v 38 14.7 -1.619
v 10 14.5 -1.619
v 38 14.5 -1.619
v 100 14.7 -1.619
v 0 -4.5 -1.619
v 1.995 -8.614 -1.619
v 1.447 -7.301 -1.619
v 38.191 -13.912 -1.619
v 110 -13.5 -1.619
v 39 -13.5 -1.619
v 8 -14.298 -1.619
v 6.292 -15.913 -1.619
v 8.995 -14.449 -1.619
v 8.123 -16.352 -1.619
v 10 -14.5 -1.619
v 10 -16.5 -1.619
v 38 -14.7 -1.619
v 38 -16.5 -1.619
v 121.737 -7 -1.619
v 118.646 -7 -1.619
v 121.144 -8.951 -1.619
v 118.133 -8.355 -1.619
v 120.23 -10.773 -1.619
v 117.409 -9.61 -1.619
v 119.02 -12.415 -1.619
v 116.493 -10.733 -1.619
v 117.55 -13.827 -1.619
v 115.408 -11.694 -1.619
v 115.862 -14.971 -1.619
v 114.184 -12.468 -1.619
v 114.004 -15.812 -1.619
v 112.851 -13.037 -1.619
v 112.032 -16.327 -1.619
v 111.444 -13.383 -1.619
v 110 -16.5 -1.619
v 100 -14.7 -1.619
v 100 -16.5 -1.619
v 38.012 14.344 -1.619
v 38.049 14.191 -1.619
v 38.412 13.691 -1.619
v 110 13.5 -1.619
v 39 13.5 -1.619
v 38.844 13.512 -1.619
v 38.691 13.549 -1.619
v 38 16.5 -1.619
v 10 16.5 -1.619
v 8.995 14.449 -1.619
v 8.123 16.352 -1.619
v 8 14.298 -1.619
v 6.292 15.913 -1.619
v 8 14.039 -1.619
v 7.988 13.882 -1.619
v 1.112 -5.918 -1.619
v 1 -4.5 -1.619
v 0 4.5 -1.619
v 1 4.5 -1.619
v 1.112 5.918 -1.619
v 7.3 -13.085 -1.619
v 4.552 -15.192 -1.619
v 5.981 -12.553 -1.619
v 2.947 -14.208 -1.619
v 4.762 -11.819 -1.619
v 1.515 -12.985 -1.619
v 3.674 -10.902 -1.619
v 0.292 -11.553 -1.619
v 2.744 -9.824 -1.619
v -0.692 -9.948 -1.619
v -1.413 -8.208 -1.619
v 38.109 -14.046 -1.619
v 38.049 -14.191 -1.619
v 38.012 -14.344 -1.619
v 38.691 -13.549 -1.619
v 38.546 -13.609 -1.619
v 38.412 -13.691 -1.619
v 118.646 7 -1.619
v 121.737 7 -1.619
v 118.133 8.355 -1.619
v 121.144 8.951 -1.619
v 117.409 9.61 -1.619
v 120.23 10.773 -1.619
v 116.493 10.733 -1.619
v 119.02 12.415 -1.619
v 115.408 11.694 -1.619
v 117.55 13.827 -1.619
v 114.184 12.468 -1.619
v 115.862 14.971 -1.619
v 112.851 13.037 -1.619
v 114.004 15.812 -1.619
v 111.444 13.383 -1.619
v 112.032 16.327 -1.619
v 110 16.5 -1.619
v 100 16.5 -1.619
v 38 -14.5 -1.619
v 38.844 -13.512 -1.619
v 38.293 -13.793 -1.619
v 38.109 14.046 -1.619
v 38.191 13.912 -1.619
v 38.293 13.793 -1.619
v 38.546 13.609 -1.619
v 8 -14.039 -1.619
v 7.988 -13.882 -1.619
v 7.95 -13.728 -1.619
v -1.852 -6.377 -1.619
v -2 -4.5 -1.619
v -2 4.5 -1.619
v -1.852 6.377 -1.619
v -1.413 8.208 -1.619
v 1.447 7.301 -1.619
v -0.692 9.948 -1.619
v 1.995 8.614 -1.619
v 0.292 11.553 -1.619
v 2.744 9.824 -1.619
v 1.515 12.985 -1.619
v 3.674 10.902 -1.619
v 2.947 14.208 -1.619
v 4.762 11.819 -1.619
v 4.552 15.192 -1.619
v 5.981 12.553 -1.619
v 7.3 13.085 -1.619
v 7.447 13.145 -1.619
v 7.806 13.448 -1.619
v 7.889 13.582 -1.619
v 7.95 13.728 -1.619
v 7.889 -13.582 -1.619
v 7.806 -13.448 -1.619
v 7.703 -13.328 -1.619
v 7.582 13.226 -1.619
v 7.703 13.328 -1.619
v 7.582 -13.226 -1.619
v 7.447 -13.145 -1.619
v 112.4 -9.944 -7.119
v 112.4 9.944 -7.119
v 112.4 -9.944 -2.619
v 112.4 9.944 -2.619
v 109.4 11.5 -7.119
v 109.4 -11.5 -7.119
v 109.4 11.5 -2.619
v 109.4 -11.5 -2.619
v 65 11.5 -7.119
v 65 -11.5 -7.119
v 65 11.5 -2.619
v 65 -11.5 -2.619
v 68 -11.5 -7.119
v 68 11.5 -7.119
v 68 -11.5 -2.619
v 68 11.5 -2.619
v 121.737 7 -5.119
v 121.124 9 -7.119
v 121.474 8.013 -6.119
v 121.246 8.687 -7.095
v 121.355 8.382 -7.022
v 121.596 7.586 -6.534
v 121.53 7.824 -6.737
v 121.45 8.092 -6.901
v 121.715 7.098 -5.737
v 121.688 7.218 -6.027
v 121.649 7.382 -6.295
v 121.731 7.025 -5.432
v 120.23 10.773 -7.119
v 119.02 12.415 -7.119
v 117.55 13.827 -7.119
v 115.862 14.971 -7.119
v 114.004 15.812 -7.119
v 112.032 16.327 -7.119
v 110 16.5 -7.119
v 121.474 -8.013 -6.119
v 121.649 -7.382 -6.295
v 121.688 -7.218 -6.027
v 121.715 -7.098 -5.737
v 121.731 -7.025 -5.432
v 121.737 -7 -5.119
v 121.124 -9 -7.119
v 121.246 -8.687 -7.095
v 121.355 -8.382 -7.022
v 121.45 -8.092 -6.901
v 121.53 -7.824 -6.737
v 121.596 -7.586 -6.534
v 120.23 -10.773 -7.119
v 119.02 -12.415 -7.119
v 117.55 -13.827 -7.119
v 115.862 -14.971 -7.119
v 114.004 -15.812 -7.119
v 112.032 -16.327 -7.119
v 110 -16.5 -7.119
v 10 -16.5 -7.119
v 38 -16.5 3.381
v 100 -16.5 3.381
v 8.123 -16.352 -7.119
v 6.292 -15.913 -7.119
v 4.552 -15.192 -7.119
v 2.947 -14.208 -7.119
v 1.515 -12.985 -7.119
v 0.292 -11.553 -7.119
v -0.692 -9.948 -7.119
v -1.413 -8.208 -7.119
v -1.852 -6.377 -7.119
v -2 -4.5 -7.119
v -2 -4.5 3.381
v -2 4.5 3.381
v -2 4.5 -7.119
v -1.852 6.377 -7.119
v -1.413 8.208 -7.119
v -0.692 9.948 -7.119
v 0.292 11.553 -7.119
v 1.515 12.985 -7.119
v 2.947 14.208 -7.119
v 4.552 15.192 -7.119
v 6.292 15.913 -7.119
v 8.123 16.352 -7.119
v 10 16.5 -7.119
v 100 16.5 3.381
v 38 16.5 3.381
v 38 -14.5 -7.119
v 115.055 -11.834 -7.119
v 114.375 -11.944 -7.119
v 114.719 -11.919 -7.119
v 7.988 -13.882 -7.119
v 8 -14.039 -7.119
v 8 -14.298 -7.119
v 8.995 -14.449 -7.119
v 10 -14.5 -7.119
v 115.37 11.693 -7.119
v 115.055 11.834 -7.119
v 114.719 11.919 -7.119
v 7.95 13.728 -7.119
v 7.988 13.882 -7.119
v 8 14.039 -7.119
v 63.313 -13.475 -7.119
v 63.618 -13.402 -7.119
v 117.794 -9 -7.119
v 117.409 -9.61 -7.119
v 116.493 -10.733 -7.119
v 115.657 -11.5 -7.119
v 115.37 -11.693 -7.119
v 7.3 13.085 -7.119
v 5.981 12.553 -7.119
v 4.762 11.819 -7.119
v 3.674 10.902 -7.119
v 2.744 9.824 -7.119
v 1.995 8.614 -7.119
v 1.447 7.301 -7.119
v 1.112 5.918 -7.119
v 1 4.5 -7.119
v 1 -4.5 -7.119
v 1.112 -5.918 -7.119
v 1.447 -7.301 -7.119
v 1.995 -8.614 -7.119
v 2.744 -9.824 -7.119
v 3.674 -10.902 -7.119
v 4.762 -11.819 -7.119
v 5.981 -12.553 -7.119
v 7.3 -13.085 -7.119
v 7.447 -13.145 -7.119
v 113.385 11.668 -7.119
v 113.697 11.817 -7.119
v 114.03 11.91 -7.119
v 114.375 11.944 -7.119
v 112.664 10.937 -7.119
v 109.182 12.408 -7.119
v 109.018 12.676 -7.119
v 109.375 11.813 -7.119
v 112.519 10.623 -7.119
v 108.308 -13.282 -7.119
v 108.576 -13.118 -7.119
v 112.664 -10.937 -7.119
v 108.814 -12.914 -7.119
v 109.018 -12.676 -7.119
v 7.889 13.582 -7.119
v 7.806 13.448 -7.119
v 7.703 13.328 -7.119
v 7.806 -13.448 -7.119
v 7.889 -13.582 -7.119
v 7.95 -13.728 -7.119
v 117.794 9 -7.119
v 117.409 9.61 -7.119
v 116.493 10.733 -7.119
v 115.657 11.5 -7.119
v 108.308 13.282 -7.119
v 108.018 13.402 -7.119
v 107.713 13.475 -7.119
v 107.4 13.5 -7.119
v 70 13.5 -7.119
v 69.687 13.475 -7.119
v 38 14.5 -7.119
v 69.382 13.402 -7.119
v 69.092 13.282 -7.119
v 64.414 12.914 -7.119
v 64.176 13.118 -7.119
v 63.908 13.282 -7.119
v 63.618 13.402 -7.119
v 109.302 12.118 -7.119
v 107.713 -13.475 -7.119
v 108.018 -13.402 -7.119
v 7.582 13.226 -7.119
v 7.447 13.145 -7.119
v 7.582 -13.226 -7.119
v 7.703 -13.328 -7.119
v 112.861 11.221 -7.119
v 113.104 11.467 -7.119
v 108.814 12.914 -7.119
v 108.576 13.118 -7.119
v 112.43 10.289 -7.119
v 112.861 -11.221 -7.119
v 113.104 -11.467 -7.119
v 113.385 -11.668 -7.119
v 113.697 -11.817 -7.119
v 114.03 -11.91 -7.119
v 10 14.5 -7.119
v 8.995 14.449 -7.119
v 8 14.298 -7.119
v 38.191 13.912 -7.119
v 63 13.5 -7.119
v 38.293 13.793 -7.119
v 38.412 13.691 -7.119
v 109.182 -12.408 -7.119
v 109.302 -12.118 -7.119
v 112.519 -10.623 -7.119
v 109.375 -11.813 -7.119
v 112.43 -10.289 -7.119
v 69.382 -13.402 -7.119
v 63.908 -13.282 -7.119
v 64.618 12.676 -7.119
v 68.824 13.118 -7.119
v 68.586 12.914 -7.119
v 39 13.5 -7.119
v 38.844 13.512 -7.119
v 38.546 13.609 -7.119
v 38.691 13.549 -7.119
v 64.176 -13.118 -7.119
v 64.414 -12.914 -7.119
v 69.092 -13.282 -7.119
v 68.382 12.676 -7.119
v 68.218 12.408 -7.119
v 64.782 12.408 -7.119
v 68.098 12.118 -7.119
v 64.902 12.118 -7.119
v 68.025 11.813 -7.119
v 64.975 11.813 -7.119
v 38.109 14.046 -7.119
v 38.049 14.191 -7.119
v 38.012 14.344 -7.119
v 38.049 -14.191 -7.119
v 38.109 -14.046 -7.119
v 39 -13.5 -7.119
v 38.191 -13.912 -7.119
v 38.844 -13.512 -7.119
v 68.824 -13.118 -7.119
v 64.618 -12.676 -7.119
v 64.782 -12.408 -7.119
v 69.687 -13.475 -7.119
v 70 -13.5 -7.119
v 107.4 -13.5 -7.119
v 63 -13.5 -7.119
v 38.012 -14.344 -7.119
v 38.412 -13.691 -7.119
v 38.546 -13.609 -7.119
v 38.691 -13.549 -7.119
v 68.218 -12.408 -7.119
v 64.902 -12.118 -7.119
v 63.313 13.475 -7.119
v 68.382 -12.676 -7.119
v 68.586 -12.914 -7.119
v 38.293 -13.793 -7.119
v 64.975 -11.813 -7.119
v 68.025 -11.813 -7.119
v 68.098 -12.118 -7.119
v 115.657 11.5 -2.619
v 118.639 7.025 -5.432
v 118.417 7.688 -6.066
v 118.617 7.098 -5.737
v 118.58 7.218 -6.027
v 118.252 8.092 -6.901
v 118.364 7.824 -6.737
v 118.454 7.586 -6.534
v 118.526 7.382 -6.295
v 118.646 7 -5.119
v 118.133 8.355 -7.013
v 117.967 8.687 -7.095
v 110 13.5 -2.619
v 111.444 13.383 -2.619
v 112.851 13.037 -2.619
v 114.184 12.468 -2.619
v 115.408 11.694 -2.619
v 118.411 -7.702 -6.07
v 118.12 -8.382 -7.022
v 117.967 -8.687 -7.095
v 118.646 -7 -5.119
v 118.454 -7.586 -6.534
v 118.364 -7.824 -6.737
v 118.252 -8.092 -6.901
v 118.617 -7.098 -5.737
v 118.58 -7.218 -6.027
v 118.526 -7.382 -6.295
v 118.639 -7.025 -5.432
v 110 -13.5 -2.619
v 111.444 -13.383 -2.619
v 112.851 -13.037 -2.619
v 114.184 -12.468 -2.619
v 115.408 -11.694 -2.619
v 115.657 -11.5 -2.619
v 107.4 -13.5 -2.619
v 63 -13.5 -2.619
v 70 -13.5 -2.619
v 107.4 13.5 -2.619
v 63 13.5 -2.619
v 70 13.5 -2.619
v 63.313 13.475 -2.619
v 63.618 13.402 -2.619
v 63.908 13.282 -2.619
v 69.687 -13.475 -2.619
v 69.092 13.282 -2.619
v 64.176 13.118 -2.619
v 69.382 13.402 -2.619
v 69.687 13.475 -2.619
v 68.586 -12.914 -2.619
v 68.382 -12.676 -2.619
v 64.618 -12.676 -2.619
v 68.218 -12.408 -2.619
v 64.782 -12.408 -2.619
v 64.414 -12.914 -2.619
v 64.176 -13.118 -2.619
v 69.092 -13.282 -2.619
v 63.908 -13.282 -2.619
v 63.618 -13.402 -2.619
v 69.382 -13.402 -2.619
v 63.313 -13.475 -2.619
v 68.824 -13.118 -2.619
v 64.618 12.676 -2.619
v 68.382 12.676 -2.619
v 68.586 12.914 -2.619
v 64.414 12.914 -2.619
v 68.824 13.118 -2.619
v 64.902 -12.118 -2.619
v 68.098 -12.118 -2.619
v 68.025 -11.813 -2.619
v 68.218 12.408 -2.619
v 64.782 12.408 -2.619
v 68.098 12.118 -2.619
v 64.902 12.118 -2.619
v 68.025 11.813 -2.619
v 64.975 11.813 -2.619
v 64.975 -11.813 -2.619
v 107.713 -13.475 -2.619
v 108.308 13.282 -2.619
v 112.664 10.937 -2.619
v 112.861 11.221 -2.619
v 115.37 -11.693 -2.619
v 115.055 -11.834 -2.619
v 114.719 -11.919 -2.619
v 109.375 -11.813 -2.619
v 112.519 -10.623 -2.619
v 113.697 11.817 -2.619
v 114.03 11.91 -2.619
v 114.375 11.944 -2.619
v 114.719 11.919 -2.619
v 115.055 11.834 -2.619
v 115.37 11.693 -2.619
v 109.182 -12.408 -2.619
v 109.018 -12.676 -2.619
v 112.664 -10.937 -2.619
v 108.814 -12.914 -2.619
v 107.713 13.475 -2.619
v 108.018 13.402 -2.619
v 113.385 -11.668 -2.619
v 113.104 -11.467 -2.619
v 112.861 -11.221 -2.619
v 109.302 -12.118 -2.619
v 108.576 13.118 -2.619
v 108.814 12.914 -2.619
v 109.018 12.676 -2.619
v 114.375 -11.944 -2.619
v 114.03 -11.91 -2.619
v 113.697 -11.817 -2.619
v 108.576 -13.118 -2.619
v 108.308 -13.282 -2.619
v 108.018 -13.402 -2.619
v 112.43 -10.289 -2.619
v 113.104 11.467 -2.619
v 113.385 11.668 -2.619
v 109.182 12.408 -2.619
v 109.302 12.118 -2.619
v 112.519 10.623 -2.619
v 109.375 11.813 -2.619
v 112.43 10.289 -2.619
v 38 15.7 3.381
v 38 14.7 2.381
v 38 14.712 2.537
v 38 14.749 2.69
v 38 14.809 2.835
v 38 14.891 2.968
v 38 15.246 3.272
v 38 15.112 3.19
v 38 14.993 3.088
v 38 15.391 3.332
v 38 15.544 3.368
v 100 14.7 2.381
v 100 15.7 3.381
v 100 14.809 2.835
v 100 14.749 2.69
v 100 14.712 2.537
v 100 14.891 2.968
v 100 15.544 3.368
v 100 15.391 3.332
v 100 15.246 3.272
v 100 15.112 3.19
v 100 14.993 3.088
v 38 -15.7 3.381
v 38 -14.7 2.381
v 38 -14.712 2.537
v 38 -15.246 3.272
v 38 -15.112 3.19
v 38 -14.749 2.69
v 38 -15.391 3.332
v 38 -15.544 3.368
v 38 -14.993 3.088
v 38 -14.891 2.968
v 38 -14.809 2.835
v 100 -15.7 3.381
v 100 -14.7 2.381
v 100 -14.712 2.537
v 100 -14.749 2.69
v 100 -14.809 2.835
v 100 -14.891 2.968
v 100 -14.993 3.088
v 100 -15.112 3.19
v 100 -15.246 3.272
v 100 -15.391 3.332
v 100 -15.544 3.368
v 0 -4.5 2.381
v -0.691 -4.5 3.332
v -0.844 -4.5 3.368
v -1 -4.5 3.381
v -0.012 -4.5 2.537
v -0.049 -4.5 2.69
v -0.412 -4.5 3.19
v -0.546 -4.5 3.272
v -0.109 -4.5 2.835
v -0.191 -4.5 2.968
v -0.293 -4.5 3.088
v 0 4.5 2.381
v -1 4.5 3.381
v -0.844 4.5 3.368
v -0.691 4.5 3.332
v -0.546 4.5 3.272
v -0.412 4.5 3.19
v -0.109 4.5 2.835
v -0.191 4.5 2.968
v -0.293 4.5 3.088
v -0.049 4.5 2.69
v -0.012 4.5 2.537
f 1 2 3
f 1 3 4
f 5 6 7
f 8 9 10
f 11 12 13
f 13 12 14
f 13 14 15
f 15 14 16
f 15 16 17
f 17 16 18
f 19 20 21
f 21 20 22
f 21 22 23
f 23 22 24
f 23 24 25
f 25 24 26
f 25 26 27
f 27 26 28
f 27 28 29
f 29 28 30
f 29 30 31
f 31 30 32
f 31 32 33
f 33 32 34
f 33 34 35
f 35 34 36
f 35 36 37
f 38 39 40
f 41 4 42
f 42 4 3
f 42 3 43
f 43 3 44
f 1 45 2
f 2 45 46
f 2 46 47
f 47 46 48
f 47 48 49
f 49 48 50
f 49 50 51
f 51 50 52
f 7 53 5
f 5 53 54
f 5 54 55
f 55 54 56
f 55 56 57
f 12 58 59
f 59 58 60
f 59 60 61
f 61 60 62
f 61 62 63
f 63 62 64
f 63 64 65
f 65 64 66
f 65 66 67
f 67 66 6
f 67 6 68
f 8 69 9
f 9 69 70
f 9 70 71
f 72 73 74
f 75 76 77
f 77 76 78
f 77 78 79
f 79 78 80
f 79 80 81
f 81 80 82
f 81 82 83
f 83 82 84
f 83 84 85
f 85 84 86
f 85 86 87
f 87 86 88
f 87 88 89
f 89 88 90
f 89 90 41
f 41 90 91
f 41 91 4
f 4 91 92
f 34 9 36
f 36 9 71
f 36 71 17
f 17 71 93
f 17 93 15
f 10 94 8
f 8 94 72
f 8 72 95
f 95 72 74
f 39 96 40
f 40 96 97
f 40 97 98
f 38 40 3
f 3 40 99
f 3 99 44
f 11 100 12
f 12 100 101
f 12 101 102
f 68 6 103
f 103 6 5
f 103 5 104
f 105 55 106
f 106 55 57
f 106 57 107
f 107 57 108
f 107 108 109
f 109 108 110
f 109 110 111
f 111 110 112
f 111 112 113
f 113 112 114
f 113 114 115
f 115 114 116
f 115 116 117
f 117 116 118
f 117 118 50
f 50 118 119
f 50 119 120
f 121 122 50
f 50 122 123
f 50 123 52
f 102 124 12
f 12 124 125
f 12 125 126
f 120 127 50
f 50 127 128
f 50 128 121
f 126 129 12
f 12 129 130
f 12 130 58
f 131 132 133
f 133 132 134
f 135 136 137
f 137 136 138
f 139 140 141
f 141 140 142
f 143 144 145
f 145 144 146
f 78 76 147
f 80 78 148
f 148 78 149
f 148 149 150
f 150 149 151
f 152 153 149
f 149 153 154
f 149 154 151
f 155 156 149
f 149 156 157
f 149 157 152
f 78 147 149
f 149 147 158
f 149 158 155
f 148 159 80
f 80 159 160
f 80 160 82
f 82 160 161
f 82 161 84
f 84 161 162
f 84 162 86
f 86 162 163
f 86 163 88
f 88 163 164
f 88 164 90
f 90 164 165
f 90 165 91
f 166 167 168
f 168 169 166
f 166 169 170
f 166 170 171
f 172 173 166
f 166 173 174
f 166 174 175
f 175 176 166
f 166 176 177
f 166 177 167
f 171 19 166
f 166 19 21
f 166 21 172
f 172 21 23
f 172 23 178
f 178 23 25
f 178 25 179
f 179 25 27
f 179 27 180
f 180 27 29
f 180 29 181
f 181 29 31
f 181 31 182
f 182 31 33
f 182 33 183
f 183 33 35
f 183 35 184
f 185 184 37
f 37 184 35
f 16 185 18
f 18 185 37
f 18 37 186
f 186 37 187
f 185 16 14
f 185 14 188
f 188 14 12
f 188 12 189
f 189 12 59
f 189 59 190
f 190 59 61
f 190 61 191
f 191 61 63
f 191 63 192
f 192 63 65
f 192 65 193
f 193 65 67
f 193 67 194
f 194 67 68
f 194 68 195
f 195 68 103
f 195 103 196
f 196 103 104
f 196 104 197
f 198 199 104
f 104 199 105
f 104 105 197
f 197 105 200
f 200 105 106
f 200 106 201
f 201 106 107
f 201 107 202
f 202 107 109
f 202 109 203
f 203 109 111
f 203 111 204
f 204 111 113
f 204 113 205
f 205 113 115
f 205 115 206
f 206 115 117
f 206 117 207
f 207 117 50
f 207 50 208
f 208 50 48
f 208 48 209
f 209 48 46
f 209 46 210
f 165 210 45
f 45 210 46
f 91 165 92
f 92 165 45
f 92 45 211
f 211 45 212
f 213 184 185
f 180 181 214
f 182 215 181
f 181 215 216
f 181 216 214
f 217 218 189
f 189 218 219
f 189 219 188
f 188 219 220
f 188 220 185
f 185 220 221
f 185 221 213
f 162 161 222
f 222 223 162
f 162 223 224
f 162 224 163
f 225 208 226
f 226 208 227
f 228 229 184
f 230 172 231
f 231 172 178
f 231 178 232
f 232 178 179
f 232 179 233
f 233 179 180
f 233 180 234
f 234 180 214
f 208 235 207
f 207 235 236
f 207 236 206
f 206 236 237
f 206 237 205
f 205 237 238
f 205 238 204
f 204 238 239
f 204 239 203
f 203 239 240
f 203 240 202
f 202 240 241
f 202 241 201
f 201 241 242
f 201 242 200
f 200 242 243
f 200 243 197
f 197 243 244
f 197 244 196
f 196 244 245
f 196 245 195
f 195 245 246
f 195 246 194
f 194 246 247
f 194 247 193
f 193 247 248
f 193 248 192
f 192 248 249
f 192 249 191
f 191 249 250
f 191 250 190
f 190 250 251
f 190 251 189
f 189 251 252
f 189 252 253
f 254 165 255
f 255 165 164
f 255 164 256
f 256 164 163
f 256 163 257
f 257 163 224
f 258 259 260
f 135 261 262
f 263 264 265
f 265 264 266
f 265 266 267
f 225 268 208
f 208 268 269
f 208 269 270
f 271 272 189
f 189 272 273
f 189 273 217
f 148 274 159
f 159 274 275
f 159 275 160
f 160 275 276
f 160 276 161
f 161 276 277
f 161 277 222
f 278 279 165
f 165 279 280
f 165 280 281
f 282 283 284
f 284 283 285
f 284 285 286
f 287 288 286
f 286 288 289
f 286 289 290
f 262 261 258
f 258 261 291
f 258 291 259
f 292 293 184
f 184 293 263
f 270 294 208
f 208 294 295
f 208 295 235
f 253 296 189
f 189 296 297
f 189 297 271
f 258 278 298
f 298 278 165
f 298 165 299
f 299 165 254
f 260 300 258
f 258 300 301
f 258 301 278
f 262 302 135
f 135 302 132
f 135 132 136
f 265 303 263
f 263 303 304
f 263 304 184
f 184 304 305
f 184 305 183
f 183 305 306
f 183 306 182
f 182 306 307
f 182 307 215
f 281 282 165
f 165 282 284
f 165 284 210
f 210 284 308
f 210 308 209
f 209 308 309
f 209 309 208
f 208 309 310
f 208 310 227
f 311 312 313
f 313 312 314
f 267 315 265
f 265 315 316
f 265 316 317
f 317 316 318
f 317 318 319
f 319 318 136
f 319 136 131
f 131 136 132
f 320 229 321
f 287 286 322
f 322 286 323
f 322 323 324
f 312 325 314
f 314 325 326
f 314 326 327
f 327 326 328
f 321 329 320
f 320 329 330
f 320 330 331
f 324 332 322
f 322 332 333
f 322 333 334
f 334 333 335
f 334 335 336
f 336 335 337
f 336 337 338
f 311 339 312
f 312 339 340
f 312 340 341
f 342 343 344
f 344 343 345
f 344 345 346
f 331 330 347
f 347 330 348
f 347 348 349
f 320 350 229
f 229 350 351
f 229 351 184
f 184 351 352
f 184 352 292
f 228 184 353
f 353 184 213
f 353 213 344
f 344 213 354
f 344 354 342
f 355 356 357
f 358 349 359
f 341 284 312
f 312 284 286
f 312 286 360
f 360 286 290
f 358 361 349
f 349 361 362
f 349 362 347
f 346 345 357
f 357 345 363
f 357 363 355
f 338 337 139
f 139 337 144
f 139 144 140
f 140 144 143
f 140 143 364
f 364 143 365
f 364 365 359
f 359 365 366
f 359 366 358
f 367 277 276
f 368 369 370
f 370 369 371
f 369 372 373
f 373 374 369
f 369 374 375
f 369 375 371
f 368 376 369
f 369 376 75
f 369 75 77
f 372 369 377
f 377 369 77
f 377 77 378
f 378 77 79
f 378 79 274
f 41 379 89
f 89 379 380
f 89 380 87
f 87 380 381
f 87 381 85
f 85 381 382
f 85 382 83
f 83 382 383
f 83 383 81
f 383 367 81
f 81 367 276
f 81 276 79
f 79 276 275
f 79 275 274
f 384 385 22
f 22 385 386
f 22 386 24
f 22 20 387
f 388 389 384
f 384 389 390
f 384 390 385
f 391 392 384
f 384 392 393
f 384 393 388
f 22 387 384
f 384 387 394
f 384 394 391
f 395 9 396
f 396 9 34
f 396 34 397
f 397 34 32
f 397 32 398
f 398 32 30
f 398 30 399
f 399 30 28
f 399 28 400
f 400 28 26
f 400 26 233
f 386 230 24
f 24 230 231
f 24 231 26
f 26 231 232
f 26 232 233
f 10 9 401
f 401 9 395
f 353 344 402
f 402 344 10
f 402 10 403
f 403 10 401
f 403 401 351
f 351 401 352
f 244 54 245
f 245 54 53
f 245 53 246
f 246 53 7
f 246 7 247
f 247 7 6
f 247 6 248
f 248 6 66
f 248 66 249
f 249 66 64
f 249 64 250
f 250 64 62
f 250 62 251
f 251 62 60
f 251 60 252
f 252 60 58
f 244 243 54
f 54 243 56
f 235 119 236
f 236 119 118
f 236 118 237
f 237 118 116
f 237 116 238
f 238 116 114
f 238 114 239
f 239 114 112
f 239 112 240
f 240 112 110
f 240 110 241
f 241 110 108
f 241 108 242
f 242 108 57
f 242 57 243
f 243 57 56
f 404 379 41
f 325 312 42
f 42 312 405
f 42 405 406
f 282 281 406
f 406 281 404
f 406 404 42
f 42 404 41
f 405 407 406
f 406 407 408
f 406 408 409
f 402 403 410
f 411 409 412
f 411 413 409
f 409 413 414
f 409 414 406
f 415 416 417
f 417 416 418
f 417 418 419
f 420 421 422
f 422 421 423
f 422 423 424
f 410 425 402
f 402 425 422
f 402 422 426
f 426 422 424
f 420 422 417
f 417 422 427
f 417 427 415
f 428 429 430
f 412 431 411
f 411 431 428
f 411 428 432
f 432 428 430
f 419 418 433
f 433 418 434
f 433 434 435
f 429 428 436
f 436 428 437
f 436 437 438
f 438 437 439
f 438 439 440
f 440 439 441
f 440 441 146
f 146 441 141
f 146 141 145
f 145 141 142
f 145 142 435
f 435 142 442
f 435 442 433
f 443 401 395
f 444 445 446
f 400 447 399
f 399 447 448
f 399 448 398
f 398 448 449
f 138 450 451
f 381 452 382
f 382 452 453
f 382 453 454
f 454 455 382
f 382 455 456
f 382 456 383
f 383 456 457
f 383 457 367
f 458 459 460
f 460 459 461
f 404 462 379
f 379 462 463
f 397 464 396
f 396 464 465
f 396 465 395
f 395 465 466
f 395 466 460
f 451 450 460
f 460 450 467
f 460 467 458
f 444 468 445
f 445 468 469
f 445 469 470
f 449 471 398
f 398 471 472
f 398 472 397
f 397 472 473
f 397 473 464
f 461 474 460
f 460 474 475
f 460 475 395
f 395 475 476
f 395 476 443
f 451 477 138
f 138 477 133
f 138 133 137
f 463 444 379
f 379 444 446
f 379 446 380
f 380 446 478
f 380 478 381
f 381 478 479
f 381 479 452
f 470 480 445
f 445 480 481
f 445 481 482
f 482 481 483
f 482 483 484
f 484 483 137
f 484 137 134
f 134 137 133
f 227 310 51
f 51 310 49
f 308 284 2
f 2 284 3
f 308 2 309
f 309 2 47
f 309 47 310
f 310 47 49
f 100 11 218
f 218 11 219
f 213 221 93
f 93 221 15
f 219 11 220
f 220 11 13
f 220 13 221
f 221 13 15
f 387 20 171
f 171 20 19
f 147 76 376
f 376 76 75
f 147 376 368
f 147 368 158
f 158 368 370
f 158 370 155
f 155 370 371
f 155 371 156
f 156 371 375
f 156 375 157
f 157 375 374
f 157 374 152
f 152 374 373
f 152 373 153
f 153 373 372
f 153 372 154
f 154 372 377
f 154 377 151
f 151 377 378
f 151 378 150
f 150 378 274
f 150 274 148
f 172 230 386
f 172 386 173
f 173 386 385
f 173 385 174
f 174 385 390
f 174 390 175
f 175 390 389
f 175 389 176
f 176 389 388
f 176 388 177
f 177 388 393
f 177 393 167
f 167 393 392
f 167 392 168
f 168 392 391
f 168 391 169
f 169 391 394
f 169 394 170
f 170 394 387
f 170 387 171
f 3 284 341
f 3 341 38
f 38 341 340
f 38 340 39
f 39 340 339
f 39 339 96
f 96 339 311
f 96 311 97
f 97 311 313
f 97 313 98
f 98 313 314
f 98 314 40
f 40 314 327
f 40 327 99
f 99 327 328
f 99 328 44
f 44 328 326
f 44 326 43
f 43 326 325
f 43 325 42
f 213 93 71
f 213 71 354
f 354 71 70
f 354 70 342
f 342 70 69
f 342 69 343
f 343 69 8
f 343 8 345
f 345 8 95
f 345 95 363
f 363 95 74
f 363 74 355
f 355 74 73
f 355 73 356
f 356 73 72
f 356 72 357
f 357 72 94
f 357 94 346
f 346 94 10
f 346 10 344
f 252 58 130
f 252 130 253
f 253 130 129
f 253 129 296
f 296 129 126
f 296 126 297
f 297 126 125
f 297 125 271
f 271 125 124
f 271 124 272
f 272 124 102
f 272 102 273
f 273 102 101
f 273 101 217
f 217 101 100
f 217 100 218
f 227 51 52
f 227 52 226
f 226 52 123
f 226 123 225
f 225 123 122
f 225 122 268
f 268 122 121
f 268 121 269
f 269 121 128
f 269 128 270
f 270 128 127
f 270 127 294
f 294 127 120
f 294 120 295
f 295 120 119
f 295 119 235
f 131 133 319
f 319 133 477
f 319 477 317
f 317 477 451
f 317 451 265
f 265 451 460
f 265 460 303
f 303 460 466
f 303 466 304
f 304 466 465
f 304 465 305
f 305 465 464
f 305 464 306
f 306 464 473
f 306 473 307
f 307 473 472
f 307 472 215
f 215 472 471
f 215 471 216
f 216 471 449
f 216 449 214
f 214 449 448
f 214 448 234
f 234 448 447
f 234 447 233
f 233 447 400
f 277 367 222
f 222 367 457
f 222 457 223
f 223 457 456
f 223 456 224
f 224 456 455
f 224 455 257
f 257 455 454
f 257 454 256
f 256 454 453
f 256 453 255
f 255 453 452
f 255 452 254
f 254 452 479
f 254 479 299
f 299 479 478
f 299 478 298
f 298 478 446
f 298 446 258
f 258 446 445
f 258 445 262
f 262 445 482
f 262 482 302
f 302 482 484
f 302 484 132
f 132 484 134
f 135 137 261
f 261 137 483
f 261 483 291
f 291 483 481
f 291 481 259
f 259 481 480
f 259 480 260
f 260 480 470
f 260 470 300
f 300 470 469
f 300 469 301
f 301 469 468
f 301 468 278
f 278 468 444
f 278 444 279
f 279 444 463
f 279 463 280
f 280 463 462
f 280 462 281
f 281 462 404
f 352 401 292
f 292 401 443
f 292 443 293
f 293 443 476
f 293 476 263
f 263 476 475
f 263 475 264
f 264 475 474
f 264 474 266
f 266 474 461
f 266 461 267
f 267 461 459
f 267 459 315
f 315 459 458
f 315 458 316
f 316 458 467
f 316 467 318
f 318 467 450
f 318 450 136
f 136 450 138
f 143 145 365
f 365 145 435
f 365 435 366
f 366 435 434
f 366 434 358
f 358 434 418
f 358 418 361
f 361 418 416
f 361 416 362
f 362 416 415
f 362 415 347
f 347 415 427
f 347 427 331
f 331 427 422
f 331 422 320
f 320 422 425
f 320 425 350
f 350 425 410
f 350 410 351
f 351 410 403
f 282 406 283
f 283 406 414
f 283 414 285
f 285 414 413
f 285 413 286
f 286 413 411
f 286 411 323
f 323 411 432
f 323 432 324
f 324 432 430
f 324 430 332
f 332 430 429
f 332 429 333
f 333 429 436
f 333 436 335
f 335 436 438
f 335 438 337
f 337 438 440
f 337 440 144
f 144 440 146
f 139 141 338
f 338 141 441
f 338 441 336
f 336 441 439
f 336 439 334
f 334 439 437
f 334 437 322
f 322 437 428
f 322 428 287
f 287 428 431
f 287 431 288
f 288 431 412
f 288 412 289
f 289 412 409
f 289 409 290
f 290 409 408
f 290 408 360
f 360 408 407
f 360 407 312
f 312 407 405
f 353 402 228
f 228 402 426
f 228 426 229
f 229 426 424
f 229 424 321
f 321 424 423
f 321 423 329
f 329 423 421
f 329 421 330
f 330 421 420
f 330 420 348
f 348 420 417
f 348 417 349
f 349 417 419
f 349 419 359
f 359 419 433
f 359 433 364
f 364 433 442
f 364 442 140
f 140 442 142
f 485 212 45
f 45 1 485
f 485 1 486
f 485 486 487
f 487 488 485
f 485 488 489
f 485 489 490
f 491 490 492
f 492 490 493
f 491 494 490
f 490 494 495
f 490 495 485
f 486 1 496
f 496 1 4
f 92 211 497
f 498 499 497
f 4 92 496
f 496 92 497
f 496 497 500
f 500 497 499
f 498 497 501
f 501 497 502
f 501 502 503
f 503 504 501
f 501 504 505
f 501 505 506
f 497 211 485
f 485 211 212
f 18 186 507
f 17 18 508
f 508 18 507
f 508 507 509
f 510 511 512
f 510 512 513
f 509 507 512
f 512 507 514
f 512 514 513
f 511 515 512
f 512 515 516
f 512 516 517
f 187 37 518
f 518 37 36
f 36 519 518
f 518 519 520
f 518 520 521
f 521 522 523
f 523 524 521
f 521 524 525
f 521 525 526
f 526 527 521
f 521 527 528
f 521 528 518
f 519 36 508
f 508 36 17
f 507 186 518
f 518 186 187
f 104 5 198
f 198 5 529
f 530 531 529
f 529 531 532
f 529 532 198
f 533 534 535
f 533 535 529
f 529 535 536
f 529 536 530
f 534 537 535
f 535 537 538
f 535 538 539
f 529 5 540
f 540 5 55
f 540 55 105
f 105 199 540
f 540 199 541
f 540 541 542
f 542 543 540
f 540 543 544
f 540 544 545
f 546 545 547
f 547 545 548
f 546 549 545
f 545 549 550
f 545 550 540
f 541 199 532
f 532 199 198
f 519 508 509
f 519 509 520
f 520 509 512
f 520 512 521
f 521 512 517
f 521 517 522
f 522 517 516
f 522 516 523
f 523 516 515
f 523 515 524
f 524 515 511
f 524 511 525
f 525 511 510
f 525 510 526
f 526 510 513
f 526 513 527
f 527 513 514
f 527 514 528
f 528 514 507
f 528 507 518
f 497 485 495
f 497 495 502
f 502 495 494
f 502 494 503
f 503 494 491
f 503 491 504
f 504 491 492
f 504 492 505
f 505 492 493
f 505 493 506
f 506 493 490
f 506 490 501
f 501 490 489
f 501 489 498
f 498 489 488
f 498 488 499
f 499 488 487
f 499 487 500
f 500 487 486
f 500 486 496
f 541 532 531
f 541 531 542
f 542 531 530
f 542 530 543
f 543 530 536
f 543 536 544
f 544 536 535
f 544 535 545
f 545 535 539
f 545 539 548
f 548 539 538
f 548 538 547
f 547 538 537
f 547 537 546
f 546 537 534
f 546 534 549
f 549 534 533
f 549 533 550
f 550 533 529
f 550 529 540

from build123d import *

# Parameters (mm, degrees)
BOSS_EXTRUDE2_DEPTH                    = 5.5
SKETCH4_W                              = 3
SKETCH4_H                              = 27
BOSS_EXTRUDE4_CROSS_STRUCTURES_DEPTH   = 5.5
SKETCH6_W                              = 3
SKETCH6_H                              = 27
CUT_EXTRUDE3_1_MM_SPACING_DEPTH        = 1
CUT_EXTRUDE4_ELECTRONICS_SPACING_DEPTH = 124.233518168
SKETCH8_W                              = 5.5
SKETCH8_H                              = 14
CUT_EXTRUDE2_USB_C_CUTOUT_DEPTH        = 5
FILLET2_USBC_R                         = 2
FILLET3_INNER_CORNERS_FRONT_R          = 1
FILLET5_INNER_CORNERS_R                = 2
SKETCH18_W                             = 62
SKETCH18_H                             = 1.8
SKETCH18_W_2                           = 2
SKETCH18_H_2                           = 9
BOSS_EXTRUDE7_DEPTH                    = 5
FILLET1_R                              = 1


with BuildPart() as part:
    # Sketch3 → Boss-Extrude2 (new body)
    with BuildSketch(Plane.XY.offset(-1.6194024)):
        with BuildLine():
            Line((110, 16.5), (10, 16.5))
            ThreePointArc((10, 16.5), (1.514718626, 12.985281374), (-2, 4.5))
            Line((-2, 4.5), (-2, -4.5))
            ThreePointArc((-2, -4.5), (1.514718626, -12.985281374), (10, -16.5))
            Line((10, -16.5), (110, -16.5))
            ThreePointArc((110, -16.5), (118.485281374, -12.985281374), (122, -4.5))
            Line((122, -4.5), (122, 4.5))
            ThreePointArc((122, 4.5), (118.485281374, 12.985281374), (110, 16.5))
        make_face()
        with BuildLine():
            Line((119, -4.5), (119, 4.5))
            ThreePointArc((119, 4.5), (116.363961031, 10.863961031), (110, 13.5))
            Line((110, 13.5), (10, 13.5))
            ThreePointArc((10, 13.5), (3.636038969, 10.863961031), (1, 4.5))
            Line((1, 4.5), (1, -4.5))
            ThreePointArc((1, -4.5), (3.636038969, -10.863961031), (10, -13.5))
            Line((10, -13.5), (110, -13.5))
            ThreePointArc((110, -13.5), (116.363961031, -10.863961031), (119, -4.5))
        make_face(mode=Mode.SUBTRACT)
    extrude(amount=-BOSS_EXTRUDE2_DEPTH)

    # Sketch4 → Boss-Extrude4 - cross structures (add)
    with BuildSketch(Plane.XY.offset(-1.6194024)):
        with Locations((110.9, 0)):
            Rectangle(SKETCH4_W, SKETCH4_H)
        with Locations((66.5, 0)):
            Rectangle(SKETCH4_W, SKETCH4_H)
    extrude(amount=-BOSS_EXTRUDE4_CROSS_STRUCTURES_DEPTH)

    # Sketch6 → Cut-Extrude3 - 1 mm spacing (cut)
    with BuildSketch(Plane.XY.offset(-1.6194024)):
        with BuildLine():
            Line((109.4, 13.5), (110, 13.5))
            ThreePointArc((110, 13.5), (111.211013131, 13.418152678), (112.4, 13.174099377))
            Line((112.4, 13.174099377), (112.4, -13.174099377))
            ThreePointArc((112.4, -13.174099377), (111.211013131, -13.418152678), (110, -13.5))
            Line((110, -13.5), (109.4, -13.5))
            Line((109.4, -13.5), (109.4, 13.5))
        make_face()
        with Locations((66.5, 0)):
            Rectangle(SKETCH6_W, SKETCH6_H)
    extrude(amount=-CUT_EXTRUDE3_1_MM_SPACING_DEPTH, mode=Mode.SUBTRACT)

    # Sketch7 → Cut-Extrude4 - electronics spacing (cut, through all)
    with BuildSketch(Plane.XY.offset(-1.6194024)):
        with BuildLine():
            Line((38, -14.5), (10, -14.5))
            ThreePointArc((10, -14.5), (8.99491038, -14.44936153), (8, -14.297958971))
            Line((8, -14.297958971), (8, 14.297958971))
            ThreePointArc((8, 14.297958971), (8.99491038, 14.44936153), (10, 14.5))
            Line((10, 14.5), (38, 14.5))
            Line((38, 14.5), (38, -14.5))
        make_face()
    extrude(amount=-CUT_EXTRUDE4_ELECTRONICS_SPACING_DEPTH, mode=Mode.SUBTRACT)

    # Sketch8 → Cut-Extrude2 - USB-C cutout (cut)
    with BuildSketch(Plane(origin=(122, 0, 0), x_dir=(0, 0, -1), z_dir=(1, 0, 0))):
        with Locations((4.3694024, 0)):
            Rectangle(SKETCH8_W, SKETCH8_H)
    extrude(amount=-CUT_EXTRUDE2_USB_C_CUTOUT_DEPTH, mode=Mode.SUBTRACT)

    # Fillet2 - USBC
    fillet2_usbc_edges = [part.edges().sort_by_distance(p)[0] for p in [
        (120.191251414, 7, -7.1194024),
        (120.191251414, -7, -7.1194024),
    ]]
    fillet(fillet2_usbc_edges, radius=FILLET2_USBC_R)

    # Fillet3 - inner corners, front
    fillet3_inner_corners_front_edges = [part.edges().sort_by_distance(p)[0] for p in [
        (38, 13.5, -4.3694024),
        (38, -13.5, -4.3694024),
        (8, -13.274964387, -4.3694024),
        (8, 13.274964387, -4.3694024),
    ]]
    fillet(fillet3_inner_corners_front_edges, radius=FILLET3_INNER_CORNERS_FRONT_R - 0.0001)  # a hair under: the kernel refuses the full size

    # Fillet5 - inner corners
    fillet5_inner_corners_edges = [part.edges().sort_by_distance(p)[0] for p in [
        (112.4, -13.174099377, -4.8694024),
        (109.4, -13.5, -4.8694024),
        (109.4, 13.5, -4.8694024),
        (65, -13.5, -4.8694024),
        (65, 13.5, -4.8694024),
        (68, 13.5, -4.8694024),
        (68, -13.5, -4.8694024),
        (112.4, 13.174099377, -4.8694024),
    ]]
    fillet(fillet5_inner_corners_edges, radius=FILLET5_INNER_CORNERS_R)

    # Sketch18 → Boss-Extrude7 (add)
    with BuildSketch(Plane.XY.offset(-1.6194024)):
        with Locations((69, 15.6)):
            Rectangle(SKETCH18_W, SKETCH18_H)
        with Locations((69, -15.6)):
            Rectangle(SKETCH18_W, SKETCH18_H)
        with Locations((-1, 0)):
            Rectangle(SKETCH18_W_2, SKETCH18_H_2)
    extrude(amount=BOSS_EXTRUDE7_DEPTH)

    # Fillet1
    fillet1_edges = [part.edges().sort_by_distance(p)[0] for p in [
        (69, 14.7, 3.3805976),
        (69, -14.7, 3.3805976),
        (0, 0, 3.3805976),
    ]]
    fillet(fillet1_edges, radius=FILLET1_R)


solid = part.part
